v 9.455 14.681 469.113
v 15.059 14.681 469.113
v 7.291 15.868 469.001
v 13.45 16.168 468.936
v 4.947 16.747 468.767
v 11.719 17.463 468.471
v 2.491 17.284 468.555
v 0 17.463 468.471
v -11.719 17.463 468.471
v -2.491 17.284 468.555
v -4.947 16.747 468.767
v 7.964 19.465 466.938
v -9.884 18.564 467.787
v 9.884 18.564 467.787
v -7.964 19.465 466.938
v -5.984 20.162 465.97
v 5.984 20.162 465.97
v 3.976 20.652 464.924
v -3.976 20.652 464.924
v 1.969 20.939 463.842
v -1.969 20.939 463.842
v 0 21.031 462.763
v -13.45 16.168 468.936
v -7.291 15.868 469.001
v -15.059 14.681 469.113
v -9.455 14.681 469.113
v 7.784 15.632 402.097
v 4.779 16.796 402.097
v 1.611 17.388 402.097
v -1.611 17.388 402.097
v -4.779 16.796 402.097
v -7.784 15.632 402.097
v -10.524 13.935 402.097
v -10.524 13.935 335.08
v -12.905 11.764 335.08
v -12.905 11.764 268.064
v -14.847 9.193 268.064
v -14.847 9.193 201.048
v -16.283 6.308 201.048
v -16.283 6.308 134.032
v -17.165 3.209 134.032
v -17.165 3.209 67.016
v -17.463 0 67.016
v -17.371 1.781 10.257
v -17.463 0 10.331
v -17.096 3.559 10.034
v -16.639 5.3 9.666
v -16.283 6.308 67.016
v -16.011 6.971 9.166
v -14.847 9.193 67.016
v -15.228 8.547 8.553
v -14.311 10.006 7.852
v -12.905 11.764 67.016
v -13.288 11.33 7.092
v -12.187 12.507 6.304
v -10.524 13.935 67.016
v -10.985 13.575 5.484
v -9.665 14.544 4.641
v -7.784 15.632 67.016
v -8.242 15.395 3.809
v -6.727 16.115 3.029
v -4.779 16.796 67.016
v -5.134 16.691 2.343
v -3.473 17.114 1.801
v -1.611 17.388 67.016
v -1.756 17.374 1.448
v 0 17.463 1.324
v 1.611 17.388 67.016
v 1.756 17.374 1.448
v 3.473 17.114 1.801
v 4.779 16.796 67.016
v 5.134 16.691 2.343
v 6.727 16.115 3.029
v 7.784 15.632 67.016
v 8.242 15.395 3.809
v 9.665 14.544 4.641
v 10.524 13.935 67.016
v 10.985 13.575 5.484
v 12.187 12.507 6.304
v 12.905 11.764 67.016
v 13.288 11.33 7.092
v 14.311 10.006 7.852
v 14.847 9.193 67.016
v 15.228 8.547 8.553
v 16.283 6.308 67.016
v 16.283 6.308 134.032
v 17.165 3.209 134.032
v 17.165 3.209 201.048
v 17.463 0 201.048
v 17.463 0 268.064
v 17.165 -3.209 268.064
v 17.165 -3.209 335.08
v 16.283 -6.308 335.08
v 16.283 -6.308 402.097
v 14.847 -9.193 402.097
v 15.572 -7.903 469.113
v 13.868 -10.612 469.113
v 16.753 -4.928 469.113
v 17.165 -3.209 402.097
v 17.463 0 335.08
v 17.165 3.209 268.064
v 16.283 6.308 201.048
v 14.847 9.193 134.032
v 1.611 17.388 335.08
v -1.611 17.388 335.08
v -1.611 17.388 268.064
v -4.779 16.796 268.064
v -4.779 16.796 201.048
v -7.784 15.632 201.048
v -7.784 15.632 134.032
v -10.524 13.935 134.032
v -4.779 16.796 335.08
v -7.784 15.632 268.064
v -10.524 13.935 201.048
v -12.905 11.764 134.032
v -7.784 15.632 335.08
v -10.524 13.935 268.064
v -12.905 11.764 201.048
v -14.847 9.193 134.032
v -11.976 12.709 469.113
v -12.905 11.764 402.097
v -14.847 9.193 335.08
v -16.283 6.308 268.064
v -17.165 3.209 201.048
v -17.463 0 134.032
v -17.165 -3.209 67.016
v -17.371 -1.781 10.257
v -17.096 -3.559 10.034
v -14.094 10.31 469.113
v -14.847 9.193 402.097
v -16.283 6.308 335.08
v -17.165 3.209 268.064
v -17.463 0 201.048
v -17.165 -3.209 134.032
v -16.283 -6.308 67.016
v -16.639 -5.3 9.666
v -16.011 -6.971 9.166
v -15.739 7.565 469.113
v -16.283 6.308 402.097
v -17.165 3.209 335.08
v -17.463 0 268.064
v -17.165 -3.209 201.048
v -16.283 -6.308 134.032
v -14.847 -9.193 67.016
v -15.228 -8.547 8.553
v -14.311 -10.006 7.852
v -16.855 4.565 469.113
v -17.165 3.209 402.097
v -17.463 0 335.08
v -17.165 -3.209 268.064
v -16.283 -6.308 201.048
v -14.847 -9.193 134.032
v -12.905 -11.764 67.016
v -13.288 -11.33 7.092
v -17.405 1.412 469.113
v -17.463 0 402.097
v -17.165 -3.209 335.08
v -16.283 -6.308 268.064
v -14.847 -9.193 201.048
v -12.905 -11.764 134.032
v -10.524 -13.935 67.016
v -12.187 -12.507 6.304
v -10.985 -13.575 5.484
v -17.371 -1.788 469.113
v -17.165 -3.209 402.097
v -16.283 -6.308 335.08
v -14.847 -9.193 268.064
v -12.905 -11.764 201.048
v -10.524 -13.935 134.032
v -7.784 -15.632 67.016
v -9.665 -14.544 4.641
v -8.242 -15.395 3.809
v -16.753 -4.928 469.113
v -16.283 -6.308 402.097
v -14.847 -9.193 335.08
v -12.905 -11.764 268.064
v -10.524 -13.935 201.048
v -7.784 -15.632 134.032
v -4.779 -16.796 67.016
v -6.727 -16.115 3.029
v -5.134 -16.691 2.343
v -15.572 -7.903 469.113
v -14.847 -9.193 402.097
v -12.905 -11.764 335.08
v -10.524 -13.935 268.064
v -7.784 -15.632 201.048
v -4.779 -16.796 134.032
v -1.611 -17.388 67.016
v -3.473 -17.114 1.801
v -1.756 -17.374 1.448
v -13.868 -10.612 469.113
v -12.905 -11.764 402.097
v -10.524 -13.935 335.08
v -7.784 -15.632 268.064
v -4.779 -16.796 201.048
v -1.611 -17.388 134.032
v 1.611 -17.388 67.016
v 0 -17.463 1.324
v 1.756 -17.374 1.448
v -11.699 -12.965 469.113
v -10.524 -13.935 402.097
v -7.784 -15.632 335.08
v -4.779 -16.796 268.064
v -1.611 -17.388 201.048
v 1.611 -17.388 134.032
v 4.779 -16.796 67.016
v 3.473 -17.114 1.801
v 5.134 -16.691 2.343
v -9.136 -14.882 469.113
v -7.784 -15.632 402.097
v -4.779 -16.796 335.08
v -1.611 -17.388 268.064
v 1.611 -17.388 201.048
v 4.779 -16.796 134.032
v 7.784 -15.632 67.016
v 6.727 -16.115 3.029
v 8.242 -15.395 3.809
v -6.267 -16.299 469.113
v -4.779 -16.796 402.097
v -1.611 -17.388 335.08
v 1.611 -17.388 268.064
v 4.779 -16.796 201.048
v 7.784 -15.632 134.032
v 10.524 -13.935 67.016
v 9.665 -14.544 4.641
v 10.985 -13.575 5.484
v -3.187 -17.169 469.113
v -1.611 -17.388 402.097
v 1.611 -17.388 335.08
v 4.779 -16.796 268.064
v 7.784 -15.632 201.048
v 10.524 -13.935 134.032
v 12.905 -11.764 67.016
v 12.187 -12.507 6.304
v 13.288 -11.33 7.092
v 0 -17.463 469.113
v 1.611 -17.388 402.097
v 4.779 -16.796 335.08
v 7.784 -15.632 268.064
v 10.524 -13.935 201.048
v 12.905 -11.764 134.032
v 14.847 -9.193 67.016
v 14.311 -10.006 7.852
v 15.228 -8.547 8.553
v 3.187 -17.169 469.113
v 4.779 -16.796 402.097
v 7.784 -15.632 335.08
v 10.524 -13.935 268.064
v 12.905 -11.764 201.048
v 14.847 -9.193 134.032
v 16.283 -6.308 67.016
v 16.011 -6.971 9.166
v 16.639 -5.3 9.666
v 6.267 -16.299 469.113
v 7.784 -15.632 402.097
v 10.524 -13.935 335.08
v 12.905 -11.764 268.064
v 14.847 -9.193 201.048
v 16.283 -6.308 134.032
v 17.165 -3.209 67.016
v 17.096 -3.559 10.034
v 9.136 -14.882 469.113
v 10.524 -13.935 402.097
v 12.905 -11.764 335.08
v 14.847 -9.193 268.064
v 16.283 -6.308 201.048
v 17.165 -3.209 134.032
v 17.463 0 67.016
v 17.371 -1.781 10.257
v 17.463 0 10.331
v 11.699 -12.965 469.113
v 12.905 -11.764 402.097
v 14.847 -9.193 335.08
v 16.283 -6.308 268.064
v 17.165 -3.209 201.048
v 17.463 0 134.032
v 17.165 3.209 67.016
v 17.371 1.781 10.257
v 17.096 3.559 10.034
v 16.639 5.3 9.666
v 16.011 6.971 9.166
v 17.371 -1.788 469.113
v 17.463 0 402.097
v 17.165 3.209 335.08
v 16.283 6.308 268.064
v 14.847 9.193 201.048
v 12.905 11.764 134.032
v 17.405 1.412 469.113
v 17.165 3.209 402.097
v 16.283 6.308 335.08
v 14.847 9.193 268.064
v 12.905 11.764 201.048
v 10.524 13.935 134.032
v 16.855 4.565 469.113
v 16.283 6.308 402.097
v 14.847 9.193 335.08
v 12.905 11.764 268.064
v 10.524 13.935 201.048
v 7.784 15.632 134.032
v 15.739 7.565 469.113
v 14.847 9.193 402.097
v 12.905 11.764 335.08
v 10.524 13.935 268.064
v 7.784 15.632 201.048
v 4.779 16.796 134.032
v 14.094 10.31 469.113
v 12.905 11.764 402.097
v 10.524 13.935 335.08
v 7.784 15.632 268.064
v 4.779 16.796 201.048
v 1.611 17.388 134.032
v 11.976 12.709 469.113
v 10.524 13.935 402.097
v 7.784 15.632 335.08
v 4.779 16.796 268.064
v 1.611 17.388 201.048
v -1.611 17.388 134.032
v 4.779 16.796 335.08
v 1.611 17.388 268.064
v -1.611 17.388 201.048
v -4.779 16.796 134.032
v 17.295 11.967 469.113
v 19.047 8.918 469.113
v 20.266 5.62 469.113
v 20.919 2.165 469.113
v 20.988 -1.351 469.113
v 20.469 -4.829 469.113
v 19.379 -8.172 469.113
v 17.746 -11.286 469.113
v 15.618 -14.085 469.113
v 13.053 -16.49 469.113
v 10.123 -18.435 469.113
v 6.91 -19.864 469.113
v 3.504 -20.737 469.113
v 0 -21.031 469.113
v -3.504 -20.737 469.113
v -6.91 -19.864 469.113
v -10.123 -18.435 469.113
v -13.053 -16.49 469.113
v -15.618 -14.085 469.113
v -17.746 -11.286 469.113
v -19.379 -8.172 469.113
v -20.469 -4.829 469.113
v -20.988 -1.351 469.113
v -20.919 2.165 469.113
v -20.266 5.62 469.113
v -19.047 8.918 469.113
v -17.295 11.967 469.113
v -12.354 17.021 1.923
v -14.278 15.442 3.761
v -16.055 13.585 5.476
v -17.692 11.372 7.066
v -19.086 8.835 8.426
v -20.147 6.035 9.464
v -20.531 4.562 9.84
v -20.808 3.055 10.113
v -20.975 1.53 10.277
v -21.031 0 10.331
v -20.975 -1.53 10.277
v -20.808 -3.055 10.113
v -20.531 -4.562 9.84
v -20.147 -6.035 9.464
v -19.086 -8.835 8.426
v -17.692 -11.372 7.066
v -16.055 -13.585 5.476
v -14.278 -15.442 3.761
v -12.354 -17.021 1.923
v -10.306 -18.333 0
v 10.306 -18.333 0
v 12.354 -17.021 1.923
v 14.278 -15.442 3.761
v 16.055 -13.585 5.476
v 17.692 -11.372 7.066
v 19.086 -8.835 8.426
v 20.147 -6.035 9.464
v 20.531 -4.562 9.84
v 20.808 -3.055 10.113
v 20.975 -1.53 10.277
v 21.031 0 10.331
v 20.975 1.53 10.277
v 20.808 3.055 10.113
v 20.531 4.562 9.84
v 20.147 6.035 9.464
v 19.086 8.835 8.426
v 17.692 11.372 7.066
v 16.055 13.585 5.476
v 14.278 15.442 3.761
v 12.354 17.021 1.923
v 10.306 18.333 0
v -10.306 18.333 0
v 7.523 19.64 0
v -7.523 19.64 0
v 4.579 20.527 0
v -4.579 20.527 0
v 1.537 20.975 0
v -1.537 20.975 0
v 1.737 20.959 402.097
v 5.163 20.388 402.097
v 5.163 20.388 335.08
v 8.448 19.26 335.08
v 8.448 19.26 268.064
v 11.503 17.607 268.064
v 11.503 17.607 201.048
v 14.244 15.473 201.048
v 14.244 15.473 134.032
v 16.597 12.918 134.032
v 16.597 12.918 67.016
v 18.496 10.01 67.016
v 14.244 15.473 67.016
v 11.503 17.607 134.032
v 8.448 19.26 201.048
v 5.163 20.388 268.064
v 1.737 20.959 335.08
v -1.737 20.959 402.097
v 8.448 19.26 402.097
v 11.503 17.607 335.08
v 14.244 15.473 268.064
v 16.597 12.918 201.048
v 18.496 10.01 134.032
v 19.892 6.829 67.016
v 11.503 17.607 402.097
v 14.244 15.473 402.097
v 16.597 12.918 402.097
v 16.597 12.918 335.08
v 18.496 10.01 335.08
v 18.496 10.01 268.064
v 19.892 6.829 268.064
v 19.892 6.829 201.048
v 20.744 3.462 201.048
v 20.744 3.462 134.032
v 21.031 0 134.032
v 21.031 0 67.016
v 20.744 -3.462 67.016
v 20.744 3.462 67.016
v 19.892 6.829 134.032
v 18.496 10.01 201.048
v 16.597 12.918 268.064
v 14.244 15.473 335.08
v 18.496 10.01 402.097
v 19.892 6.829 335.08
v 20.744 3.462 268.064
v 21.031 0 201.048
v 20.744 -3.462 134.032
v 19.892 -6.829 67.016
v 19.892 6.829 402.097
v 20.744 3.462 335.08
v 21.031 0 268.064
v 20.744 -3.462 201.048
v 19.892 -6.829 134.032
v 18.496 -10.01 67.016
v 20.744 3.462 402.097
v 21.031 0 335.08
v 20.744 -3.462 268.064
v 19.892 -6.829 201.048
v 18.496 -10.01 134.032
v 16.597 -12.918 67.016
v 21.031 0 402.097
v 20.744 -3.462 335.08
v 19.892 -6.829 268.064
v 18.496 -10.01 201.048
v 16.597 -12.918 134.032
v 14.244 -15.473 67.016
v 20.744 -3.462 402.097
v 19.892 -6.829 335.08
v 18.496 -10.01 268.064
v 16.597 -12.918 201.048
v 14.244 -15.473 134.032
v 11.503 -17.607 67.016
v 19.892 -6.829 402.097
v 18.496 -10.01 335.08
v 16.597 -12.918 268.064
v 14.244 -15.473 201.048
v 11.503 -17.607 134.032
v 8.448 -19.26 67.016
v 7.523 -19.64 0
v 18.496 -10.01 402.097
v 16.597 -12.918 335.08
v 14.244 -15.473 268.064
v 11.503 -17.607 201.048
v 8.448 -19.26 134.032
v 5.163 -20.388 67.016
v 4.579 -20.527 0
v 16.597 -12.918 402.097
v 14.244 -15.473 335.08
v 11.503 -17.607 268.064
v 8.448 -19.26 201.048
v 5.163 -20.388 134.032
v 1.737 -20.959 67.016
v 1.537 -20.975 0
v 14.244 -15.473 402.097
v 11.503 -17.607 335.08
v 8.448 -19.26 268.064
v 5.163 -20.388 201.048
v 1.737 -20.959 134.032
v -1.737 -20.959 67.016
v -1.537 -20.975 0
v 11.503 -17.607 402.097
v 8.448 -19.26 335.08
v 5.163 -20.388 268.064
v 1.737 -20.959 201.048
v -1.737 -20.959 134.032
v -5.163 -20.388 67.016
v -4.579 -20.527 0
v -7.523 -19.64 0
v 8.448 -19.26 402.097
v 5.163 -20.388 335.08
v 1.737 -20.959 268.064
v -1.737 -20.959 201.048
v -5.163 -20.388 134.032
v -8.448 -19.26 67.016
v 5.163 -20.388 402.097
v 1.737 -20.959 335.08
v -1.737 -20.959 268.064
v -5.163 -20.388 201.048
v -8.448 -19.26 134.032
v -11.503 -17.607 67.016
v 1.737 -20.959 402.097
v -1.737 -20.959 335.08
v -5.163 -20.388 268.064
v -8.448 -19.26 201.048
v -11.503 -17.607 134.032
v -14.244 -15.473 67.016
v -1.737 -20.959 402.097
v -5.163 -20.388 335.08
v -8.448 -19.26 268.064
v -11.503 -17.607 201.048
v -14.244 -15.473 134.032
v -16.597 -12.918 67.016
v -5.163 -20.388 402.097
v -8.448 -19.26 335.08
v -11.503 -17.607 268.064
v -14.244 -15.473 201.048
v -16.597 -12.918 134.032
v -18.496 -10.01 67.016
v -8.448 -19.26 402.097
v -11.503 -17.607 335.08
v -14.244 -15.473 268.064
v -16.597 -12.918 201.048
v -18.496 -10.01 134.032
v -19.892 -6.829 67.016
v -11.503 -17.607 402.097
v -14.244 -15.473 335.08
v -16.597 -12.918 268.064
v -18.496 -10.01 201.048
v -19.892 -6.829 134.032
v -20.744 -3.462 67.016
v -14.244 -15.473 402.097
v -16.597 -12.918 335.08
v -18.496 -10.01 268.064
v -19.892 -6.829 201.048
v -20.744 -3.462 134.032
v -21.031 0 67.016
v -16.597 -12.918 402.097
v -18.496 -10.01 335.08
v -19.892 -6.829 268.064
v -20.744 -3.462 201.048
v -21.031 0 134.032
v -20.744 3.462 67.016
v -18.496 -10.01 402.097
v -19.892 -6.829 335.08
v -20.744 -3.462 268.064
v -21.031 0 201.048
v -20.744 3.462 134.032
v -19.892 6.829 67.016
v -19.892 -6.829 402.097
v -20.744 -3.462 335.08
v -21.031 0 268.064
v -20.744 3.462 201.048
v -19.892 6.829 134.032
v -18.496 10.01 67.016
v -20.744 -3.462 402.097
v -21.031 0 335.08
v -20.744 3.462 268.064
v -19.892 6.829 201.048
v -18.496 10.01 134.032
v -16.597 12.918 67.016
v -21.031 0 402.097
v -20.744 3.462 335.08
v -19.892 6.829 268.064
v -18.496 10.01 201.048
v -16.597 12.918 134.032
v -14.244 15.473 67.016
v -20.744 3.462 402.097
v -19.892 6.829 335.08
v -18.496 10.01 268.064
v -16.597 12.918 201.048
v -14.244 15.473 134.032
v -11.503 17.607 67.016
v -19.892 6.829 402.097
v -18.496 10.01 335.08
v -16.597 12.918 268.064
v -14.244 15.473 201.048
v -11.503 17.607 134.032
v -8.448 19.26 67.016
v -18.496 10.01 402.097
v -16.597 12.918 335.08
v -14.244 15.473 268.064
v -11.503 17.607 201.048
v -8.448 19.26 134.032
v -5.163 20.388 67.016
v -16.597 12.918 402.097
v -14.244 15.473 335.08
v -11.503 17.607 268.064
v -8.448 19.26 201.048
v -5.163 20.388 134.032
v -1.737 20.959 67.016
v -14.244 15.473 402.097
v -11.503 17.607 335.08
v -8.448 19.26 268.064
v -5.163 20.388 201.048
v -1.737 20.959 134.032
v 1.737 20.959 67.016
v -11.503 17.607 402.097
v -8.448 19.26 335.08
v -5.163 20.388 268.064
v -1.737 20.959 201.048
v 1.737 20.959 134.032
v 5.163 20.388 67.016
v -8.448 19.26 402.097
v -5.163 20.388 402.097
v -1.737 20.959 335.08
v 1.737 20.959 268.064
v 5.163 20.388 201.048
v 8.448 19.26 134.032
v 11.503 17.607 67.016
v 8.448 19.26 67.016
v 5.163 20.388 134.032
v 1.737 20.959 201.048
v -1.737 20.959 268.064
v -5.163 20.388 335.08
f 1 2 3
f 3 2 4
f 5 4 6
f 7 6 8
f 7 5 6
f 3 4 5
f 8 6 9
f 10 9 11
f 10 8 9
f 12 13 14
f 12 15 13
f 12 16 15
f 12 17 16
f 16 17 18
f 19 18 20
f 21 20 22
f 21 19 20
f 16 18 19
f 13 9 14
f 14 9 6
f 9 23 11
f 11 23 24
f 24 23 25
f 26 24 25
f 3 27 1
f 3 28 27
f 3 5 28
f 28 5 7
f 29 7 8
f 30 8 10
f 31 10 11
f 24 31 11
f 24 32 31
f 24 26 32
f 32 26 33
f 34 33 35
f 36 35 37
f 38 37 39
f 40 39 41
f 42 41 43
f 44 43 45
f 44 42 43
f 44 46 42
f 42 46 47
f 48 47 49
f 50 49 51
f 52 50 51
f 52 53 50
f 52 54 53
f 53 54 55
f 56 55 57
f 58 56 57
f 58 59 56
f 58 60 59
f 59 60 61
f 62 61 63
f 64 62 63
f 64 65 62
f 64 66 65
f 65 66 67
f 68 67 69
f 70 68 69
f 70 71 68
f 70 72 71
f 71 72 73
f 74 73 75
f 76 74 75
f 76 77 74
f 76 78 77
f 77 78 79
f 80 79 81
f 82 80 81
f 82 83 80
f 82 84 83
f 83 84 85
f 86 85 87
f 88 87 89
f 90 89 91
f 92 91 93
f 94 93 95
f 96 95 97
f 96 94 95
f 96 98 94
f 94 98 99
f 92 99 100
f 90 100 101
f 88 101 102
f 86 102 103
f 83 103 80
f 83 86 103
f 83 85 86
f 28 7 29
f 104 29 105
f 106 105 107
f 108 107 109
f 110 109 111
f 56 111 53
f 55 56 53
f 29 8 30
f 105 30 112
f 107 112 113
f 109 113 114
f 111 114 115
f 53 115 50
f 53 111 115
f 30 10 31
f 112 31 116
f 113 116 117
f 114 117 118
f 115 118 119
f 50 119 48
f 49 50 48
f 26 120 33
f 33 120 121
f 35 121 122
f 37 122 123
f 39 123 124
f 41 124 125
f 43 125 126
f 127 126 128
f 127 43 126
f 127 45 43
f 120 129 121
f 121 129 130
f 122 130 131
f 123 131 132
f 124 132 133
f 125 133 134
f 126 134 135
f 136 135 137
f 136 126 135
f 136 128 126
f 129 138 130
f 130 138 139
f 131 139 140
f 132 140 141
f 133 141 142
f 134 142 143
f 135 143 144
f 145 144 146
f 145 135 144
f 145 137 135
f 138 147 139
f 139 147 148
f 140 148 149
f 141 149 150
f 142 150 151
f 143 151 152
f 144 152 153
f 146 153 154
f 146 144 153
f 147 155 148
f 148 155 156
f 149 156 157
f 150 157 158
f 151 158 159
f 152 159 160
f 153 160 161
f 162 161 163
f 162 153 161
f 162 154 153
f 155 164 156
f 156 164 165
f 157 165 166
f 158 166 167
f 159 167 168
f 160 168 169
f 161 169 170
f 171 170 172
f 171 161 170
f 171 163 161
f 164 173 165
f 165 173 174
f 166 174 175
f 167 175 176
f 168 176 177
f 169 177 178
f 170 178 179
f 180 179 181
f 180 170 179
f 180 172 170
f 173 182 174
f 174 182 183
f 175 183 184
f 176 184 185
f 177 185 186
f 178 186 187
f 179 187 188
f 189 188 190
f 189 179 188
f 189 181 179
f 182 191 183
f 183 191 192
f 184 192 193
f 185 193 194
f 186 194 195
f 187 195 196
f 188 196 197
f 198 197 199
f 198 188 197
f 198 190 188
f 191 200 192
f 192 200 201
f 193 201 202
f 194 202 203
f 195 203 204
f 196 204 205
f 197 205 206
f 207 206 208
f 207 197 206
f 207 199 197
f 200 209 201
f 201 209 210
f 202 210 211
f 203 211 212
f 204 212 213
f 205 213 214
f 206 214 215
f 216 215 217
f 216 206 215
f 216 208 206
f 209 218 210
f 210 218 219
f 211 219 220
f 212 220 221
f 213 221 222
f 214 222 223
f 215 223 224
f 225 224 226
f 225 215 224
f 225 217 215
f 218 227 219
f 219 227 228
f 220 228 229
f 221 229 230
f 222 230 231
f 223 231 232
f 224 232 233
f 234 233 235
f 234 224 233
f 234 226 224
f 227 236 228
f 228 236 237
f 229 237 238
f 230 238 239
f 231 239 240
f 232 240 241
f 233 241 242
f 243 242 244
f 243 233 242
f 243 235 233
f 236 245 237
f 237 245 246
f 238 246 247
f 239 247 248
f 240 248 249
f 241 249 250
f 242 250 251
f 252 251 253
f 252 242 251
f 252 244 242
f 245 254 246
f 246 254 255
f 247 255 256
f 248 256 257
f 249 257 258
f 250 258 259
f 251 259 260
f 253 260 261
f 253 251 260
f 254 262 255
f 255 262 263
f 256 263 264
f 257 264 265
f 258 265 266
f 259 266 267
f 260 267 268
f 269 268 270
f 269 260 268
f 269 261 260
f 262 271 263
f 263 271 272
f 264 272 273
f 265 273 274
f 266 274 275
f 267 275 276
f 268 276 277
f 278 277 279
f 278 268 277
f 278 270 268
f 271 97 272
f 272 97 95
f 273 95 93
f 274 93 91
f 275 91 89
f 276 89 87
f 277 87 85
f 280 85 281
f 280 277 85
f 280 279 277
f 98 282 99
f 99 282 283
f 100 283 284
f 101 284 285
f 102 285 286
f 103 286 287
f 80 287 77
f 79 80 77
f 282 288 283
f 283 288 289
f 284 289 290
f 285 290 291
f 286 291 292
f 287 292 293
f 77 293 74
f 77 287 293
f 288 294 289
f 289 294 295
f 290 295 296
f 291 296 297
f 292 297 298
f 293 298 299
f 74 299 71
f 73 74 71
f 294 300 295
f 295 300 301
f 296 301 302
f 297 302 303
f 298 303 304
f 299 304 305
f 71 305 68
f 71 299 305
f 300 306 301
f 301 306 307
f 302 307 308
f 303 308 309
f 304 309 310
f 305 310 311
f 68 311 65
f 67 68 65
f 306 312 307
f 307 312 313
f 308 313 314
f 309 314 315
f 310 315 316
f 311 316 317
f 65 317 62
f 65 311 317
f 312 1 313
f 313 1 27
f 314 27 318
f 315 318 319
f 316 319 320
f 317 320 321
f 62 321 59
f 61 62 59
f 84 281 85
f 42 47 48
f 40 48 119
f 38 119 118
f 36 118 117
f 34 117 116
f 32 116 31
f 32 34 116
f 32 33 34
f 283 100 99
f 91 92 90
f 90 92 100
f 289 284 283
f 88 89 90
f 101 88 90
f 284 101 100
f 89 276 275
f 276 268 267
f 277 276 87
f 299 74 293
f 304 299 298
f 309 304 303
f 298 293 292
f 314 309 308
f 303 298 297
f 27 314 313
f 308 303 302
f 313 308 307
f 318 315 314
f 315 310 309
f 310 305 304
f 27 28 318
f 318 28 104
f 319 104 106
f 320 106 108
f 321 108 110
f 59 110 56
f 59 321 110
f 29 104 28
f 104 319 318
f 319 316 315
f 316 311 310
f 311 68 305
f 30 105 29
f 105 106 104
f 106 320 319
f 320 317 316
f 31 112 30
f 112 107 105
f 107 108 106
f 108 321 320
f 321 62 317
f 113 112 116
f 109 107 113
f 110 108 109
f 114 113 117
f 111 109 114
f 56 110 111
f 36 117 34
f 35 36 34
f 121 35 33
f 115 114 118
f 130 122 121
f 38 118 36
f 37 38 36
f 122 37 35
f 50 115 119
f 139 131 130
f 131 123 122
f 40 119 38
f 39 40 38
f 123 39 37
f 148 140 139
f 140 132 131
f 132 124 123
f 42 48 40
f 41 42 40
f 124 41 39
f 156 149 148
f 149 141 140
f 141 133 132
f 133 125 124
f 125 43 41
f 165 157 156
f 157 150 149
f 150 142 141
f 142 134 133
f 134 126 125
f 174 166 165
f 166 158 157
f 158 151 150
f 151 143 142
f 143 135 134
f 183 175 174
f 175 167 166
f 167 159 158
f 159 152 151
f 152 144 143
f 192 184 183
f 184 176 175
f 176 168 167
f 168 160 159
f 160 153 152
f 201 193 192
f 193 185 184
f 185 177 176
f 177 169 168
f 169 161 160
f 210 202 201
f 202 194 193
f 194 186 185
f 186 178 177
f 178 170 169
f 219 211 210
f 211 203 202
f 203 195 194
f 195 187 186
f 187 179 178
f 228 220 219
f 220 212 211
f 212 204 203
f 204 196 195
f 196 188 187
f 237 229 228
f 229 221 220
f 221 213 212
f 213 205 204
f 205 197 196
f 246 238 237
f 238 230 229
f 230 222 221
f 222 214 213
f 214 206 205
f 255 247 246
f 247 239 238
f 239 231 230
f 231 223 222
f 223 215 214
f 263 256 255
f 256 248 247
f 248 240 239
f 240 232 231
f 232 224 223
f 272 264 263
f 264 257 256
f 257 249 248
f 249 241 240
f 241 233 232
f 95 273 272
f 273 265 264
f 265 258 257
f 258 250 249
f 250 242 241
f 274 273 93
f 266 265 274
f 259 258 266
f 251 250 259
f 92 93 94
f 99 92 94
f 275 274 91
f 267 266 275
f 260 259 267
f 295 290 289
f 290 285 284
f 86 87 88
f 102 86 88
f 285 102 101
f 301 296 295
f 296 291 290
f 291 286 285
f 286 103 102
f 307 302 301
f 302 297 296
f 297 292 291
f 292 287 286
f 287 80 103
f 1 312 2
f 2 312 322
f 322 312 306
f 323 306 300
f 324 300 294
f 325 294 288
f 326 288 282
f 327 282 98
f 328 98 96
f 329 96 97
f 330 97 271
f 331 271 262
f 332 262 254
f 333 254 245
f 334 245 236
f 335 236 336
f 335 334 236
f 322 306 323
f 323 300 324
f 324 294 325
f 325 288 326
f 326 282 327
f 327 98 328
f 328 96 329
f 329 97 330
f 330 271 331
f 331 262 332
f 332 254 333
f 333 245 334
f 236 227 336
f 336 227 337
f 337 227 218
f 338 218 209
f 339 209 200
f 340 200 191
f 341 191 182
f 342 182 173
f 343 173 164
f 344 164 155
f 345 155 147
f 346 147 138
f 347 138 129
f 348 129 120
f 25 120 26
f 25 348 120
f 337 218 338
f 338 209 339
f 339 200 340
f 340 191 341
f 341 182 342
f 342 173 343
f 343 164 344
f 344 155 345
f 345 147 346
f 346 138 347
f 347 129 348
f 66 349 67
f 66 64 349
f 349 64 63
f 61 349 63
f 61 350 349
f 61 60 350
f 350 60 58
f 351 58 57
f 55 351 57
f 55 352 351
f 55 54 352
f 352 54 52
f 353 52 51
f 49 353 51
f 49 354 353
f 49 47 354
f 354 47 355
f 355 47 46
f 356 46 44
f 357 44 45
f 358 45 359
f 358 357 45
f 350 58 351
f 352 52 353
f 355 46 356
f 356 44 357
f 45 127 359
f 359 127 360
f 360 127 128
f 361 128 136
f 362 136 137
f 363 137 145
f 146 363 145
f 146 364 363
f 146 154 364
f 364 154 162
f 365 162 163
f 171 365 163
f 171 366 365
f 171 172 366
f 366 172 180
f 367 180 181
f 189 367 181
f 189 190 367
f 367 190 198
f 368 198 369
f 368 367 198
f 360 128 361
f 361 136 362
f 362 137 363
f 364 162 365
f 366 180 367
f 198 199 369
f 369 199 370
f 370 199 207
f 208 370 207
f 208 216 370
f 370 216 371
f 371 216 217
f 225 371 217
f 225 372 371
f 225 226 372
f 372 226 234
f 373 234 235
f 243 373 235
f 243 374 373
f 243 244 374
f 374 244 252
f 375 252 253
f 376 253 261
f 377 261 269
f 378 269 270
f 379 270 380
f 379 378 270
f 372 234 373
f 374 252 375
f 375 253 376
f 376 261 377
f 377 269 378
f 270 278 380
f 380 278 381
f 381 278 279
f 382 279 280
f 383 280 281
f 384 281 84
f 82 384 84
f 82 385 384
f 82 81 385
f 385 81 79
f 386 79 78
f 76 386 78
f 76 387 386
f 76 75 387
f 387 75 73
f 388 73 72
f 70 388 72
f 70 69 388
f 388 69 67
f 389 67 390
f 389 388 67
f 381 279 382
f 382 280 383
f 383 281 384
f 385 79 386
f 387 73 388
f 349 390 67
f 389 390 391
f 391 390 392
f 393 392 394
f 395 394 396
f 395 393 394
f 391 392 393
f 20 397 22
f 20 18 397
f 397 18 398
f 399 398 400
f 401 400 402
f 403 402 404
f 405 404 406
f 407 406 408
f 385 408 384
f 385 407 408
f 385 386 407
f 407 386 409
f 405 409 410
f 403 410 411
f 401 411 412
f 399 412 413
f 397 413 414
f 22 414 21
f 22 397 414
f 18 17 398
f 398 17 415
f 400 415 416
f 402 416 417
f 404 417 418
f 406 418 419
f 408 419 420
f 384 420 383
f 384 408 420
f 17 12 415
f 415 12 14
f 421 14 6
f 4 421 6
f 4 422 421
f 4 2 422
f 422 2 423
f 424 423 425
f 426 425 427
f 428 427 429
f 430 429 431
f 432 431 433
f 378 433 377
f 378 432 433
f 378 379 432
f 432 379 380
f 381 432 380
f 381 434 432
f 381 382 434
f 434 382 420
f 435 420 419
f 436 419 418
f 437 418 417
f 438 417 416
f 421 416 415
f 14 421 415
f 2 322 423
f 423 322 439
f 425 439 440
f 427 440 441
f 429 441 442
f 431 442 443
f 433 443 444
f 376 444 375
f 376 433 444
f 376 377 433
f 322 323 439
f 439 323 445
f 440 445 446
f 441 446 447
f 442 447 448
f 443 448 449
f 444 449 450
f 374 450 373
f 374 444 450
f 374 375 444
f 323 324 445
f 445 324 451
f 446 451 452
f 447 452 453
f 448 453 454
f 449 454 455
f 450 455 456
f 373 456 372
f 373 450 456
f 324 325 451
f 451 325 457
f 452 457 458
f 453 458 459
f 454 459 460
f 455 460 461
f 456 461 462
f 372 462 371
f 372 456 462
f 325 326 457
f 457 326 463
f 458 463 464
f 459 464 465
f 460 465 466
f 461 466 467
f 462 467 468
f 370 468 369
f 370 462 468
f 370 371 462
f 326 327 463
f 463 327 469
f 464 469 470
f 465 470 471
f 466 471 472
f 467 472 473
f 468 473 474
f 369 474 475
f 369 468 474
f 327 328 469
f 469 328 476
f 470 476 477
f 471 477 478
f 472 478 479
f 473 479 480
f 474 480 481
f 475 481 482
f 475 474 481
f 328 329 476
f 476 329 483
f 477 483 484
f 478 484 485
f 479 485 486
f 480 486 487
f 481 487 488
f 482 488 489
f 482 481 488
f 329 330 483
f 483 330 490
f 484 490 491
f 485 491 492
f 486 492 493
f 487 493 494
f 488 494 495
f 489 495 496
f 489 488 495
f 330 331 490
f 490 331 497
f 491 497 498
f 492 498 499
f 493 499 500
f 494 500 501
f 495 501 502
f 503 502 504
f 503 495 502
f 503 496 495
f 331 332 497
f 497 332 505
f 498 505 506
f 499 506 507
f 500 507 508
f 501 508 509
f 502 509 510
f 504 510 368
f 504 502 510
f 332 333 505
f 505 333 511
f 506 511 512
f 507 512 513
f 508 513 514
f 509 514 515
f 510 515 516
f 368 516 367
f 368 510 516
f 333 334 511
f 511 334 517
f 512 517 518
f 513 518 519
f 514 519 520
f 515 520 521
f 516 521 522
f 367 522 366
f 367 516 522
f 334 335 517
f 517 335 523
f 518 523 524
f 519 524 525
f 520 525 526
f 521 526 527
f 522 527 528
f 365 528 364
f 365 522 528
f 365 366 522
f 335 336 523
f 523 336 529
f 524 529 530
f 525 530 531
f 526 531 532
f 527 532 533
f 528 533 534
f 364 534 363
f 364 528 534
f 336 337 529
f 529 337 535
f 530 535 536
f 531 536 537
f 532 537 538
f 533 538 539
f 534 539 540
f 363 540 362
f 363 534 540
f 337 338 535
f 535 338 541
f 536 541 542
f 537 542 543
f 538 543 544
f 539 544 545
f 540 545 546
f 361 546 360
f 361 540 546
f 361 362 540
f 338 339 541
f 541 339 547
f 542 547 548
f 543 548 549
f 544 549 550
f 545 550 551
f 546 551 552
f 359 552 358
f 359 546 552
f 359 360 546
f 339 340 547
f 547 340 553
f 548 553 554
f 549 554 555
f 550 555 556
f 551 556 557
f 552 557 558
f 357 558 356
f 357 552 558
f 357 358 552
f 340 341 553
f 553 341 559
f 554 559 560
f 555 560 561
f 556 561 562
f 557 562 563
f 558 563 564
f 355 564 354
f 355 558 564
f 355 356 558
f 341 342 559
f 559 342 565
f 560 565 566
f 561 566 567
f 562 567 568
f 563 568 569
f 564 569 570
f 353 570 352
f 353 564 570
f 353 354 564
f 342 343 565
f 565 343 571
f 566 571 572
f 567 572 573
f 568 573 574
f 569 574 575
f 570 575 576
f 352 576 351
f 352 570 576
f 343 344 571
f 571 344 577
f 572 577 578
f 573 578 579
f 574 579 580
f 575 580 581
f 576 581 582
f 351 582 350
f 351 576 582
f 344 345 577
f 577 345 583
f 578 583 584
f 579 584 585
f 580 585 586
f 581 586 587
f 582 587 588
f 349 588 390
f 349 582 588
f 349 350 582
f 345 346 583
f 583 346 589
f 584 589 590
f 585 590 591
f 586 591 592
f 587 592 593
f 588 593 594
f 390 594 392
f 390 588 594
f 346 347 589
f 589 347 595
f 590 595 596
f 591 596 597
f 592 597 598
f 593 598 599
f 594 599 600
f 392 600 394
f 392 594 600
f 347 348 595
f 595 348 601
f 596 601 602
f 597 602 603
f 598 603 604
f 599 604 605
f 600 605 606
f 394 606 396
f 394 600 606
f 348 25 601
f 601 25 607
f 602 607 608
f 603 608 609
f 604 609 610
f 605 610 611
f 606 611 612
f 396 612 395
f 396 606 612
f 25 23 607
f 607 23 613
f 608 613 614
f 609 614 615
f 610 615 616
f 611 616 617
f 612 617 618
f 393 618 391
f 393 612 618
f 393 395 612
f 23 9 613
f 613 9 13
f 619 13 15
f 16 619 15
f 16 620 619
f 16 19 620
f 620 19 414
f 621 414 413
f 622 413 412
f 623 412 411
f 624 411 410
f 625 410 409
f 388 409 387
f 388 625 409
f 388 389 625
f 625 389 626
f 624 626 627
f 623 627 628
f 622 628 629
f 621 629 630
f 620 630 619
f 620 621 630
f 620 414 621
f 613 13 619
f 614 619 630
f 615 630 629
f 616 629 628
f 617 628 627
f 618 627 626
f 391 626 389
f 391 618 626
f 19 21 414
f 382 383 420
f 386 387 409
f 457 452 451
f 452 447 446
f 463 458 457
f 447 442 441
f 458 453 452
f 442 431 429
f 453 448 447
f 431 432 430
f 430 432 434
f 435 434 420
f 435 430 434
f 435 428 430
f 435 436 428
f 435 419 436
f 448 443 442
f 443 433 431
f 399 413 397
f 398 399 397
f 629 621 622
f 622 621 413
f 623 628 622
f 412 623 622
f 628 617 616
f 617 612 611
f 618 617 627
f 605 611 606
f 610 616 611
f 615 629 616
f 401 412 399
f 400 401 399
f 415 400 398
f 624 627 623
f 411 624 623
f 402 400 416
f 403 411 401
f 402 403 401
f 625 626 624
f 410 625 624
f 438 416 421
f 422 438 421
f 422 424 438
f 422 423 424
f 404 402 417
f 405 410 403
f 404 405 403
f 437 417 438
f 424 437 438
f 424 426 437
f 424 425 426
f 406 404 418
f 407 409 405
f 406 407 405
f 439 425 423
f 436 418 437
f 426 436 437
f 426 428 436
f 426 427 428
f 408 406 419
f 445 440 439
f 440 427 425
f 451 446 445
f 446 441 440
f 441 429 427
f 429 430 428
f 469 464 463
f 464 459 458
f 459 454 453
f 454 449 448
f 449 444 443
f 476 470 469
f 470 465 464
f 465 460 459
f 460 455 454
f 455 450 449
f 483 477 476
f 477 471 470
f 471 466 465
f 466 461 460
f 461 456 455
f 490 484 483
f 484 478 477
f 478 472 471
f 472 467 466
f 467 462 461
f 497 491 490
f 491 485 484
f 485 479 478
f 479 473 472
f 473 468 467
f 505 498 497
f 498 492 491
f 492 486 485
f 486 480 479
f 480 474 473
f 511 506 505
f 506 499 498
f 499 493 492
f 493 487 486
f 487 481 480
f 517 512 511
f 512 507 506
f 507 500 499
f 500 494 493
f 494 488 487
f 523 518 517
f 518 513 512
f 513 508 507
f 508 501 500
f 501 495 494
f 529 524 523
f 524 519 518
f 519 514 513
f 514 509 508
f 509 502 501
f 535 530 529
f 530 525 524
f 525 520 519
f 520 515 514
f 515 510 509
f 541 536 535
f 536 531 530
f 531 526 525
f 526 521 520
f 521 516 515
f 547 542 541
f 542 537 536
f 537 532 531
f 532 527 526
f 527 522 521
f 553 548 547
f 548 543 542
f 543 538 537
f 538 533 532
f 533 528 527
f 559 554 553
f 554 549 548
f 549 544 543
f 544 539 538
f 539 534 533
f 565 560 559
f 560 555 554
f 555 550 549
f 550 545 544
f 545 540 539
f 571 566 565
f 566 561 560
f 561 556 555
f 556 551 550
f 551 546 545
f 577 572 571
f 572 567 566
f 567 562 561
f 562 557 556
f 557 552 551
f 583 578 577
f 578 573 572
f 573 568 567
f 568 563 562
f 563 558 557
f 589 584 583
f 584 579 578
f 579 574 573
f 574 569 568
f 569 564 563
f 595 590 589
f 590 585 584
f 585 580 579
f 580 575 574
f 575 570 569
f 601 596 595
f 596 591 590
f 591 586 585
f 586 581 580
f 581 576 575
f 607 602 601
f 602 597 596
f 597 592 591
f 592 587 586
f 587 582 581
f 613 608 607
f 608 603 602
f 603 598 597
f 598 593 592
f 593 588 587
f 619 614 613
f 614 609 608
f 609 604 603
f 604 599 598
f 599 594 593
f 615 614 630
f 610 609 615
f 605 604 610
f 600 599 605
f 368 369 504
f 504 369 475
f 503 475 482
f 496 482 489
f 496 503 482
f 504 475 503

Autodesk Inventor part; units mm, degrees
ref_plane "XZ Plane" through (0, 0, 0) normal (0, 1, 0) x (-1, 0, 0)
ref_plane "XY Plane" through (0, 0, 0) normal (0, 0, 1) x (1, 0, 0)
sketch "Sketch1" plane through (0, 0, 0) normal (0, 0, 1) x (1, 0, 0)
  circle A0 centre (0, 0) radius 21.0312
  circle A1 centre (0, 0) radius 17.4625
  dimension "d0" = 34.925
  dimension "d1" = 42.0624
extrude "Extrusion1" add sketch "Sketch1" along normal blind 469.1126
ref_plane "Work Plane1" through (0, 0, 0) normal (1, 0, 0) x (0, 0, 1)
sketch "Sketch2" plane through (0, 0, 0) normal (1, 0, 0) x (0, 0, 1)
  circle A0 centre (-11.0998, 0) radius 21.4312
  line L0 (-132.8598, 0) -> (569.4413, 0) projected
  line L1 (469.1126, 17.4625) -> (469.1126, -17.4625) projected
  dimension "d5" = 42.8625
  dimension "d6" = 480.2124
extrude "Extrusion2" cut sketch "Sketch2" against normal mid plane 1066.8
sketch "Sketch3" plane through (0, 0, 0) normal (1, 0, 0) x (0, 0, 1)
  line L0 (0, -21.0312) -> (469.1126, -21.0312) projected
  line L1 (469.1126, 17.4625) -> (469.1126, -17.4625) projected
  line L2 (469.1126, 21.0312) -> (469.1126, -21.0312) projected
  line L3 (483.7746, -29.5638) -> (456.7933, -29.5638)
  line L4 (456.7933, -29.5638) -> (456.7933, -21.0312)
  line L5 (456.7933, -21.0312) -> (462.7626, -21.0312)
  line L6 (469.1126, -14.6812) -> (469.1126, -8.6172)
  line L7 (469.1126, -8.6172) -> (483.7746, -8.6172)
  line L8 (483.7746, -8.6172) -> (483.7746, -29.5638)
  arc A0 (462.7626, -21.0312) -> (469.1126, -14.6812) centre (462.7626, -14.6812) ccw
  dimension "d9" = 6.35
extrude "Extrusion3" cut sketch "Sketch3" against normal mid plane 1066.8
properties part number "FE-00006-10"
